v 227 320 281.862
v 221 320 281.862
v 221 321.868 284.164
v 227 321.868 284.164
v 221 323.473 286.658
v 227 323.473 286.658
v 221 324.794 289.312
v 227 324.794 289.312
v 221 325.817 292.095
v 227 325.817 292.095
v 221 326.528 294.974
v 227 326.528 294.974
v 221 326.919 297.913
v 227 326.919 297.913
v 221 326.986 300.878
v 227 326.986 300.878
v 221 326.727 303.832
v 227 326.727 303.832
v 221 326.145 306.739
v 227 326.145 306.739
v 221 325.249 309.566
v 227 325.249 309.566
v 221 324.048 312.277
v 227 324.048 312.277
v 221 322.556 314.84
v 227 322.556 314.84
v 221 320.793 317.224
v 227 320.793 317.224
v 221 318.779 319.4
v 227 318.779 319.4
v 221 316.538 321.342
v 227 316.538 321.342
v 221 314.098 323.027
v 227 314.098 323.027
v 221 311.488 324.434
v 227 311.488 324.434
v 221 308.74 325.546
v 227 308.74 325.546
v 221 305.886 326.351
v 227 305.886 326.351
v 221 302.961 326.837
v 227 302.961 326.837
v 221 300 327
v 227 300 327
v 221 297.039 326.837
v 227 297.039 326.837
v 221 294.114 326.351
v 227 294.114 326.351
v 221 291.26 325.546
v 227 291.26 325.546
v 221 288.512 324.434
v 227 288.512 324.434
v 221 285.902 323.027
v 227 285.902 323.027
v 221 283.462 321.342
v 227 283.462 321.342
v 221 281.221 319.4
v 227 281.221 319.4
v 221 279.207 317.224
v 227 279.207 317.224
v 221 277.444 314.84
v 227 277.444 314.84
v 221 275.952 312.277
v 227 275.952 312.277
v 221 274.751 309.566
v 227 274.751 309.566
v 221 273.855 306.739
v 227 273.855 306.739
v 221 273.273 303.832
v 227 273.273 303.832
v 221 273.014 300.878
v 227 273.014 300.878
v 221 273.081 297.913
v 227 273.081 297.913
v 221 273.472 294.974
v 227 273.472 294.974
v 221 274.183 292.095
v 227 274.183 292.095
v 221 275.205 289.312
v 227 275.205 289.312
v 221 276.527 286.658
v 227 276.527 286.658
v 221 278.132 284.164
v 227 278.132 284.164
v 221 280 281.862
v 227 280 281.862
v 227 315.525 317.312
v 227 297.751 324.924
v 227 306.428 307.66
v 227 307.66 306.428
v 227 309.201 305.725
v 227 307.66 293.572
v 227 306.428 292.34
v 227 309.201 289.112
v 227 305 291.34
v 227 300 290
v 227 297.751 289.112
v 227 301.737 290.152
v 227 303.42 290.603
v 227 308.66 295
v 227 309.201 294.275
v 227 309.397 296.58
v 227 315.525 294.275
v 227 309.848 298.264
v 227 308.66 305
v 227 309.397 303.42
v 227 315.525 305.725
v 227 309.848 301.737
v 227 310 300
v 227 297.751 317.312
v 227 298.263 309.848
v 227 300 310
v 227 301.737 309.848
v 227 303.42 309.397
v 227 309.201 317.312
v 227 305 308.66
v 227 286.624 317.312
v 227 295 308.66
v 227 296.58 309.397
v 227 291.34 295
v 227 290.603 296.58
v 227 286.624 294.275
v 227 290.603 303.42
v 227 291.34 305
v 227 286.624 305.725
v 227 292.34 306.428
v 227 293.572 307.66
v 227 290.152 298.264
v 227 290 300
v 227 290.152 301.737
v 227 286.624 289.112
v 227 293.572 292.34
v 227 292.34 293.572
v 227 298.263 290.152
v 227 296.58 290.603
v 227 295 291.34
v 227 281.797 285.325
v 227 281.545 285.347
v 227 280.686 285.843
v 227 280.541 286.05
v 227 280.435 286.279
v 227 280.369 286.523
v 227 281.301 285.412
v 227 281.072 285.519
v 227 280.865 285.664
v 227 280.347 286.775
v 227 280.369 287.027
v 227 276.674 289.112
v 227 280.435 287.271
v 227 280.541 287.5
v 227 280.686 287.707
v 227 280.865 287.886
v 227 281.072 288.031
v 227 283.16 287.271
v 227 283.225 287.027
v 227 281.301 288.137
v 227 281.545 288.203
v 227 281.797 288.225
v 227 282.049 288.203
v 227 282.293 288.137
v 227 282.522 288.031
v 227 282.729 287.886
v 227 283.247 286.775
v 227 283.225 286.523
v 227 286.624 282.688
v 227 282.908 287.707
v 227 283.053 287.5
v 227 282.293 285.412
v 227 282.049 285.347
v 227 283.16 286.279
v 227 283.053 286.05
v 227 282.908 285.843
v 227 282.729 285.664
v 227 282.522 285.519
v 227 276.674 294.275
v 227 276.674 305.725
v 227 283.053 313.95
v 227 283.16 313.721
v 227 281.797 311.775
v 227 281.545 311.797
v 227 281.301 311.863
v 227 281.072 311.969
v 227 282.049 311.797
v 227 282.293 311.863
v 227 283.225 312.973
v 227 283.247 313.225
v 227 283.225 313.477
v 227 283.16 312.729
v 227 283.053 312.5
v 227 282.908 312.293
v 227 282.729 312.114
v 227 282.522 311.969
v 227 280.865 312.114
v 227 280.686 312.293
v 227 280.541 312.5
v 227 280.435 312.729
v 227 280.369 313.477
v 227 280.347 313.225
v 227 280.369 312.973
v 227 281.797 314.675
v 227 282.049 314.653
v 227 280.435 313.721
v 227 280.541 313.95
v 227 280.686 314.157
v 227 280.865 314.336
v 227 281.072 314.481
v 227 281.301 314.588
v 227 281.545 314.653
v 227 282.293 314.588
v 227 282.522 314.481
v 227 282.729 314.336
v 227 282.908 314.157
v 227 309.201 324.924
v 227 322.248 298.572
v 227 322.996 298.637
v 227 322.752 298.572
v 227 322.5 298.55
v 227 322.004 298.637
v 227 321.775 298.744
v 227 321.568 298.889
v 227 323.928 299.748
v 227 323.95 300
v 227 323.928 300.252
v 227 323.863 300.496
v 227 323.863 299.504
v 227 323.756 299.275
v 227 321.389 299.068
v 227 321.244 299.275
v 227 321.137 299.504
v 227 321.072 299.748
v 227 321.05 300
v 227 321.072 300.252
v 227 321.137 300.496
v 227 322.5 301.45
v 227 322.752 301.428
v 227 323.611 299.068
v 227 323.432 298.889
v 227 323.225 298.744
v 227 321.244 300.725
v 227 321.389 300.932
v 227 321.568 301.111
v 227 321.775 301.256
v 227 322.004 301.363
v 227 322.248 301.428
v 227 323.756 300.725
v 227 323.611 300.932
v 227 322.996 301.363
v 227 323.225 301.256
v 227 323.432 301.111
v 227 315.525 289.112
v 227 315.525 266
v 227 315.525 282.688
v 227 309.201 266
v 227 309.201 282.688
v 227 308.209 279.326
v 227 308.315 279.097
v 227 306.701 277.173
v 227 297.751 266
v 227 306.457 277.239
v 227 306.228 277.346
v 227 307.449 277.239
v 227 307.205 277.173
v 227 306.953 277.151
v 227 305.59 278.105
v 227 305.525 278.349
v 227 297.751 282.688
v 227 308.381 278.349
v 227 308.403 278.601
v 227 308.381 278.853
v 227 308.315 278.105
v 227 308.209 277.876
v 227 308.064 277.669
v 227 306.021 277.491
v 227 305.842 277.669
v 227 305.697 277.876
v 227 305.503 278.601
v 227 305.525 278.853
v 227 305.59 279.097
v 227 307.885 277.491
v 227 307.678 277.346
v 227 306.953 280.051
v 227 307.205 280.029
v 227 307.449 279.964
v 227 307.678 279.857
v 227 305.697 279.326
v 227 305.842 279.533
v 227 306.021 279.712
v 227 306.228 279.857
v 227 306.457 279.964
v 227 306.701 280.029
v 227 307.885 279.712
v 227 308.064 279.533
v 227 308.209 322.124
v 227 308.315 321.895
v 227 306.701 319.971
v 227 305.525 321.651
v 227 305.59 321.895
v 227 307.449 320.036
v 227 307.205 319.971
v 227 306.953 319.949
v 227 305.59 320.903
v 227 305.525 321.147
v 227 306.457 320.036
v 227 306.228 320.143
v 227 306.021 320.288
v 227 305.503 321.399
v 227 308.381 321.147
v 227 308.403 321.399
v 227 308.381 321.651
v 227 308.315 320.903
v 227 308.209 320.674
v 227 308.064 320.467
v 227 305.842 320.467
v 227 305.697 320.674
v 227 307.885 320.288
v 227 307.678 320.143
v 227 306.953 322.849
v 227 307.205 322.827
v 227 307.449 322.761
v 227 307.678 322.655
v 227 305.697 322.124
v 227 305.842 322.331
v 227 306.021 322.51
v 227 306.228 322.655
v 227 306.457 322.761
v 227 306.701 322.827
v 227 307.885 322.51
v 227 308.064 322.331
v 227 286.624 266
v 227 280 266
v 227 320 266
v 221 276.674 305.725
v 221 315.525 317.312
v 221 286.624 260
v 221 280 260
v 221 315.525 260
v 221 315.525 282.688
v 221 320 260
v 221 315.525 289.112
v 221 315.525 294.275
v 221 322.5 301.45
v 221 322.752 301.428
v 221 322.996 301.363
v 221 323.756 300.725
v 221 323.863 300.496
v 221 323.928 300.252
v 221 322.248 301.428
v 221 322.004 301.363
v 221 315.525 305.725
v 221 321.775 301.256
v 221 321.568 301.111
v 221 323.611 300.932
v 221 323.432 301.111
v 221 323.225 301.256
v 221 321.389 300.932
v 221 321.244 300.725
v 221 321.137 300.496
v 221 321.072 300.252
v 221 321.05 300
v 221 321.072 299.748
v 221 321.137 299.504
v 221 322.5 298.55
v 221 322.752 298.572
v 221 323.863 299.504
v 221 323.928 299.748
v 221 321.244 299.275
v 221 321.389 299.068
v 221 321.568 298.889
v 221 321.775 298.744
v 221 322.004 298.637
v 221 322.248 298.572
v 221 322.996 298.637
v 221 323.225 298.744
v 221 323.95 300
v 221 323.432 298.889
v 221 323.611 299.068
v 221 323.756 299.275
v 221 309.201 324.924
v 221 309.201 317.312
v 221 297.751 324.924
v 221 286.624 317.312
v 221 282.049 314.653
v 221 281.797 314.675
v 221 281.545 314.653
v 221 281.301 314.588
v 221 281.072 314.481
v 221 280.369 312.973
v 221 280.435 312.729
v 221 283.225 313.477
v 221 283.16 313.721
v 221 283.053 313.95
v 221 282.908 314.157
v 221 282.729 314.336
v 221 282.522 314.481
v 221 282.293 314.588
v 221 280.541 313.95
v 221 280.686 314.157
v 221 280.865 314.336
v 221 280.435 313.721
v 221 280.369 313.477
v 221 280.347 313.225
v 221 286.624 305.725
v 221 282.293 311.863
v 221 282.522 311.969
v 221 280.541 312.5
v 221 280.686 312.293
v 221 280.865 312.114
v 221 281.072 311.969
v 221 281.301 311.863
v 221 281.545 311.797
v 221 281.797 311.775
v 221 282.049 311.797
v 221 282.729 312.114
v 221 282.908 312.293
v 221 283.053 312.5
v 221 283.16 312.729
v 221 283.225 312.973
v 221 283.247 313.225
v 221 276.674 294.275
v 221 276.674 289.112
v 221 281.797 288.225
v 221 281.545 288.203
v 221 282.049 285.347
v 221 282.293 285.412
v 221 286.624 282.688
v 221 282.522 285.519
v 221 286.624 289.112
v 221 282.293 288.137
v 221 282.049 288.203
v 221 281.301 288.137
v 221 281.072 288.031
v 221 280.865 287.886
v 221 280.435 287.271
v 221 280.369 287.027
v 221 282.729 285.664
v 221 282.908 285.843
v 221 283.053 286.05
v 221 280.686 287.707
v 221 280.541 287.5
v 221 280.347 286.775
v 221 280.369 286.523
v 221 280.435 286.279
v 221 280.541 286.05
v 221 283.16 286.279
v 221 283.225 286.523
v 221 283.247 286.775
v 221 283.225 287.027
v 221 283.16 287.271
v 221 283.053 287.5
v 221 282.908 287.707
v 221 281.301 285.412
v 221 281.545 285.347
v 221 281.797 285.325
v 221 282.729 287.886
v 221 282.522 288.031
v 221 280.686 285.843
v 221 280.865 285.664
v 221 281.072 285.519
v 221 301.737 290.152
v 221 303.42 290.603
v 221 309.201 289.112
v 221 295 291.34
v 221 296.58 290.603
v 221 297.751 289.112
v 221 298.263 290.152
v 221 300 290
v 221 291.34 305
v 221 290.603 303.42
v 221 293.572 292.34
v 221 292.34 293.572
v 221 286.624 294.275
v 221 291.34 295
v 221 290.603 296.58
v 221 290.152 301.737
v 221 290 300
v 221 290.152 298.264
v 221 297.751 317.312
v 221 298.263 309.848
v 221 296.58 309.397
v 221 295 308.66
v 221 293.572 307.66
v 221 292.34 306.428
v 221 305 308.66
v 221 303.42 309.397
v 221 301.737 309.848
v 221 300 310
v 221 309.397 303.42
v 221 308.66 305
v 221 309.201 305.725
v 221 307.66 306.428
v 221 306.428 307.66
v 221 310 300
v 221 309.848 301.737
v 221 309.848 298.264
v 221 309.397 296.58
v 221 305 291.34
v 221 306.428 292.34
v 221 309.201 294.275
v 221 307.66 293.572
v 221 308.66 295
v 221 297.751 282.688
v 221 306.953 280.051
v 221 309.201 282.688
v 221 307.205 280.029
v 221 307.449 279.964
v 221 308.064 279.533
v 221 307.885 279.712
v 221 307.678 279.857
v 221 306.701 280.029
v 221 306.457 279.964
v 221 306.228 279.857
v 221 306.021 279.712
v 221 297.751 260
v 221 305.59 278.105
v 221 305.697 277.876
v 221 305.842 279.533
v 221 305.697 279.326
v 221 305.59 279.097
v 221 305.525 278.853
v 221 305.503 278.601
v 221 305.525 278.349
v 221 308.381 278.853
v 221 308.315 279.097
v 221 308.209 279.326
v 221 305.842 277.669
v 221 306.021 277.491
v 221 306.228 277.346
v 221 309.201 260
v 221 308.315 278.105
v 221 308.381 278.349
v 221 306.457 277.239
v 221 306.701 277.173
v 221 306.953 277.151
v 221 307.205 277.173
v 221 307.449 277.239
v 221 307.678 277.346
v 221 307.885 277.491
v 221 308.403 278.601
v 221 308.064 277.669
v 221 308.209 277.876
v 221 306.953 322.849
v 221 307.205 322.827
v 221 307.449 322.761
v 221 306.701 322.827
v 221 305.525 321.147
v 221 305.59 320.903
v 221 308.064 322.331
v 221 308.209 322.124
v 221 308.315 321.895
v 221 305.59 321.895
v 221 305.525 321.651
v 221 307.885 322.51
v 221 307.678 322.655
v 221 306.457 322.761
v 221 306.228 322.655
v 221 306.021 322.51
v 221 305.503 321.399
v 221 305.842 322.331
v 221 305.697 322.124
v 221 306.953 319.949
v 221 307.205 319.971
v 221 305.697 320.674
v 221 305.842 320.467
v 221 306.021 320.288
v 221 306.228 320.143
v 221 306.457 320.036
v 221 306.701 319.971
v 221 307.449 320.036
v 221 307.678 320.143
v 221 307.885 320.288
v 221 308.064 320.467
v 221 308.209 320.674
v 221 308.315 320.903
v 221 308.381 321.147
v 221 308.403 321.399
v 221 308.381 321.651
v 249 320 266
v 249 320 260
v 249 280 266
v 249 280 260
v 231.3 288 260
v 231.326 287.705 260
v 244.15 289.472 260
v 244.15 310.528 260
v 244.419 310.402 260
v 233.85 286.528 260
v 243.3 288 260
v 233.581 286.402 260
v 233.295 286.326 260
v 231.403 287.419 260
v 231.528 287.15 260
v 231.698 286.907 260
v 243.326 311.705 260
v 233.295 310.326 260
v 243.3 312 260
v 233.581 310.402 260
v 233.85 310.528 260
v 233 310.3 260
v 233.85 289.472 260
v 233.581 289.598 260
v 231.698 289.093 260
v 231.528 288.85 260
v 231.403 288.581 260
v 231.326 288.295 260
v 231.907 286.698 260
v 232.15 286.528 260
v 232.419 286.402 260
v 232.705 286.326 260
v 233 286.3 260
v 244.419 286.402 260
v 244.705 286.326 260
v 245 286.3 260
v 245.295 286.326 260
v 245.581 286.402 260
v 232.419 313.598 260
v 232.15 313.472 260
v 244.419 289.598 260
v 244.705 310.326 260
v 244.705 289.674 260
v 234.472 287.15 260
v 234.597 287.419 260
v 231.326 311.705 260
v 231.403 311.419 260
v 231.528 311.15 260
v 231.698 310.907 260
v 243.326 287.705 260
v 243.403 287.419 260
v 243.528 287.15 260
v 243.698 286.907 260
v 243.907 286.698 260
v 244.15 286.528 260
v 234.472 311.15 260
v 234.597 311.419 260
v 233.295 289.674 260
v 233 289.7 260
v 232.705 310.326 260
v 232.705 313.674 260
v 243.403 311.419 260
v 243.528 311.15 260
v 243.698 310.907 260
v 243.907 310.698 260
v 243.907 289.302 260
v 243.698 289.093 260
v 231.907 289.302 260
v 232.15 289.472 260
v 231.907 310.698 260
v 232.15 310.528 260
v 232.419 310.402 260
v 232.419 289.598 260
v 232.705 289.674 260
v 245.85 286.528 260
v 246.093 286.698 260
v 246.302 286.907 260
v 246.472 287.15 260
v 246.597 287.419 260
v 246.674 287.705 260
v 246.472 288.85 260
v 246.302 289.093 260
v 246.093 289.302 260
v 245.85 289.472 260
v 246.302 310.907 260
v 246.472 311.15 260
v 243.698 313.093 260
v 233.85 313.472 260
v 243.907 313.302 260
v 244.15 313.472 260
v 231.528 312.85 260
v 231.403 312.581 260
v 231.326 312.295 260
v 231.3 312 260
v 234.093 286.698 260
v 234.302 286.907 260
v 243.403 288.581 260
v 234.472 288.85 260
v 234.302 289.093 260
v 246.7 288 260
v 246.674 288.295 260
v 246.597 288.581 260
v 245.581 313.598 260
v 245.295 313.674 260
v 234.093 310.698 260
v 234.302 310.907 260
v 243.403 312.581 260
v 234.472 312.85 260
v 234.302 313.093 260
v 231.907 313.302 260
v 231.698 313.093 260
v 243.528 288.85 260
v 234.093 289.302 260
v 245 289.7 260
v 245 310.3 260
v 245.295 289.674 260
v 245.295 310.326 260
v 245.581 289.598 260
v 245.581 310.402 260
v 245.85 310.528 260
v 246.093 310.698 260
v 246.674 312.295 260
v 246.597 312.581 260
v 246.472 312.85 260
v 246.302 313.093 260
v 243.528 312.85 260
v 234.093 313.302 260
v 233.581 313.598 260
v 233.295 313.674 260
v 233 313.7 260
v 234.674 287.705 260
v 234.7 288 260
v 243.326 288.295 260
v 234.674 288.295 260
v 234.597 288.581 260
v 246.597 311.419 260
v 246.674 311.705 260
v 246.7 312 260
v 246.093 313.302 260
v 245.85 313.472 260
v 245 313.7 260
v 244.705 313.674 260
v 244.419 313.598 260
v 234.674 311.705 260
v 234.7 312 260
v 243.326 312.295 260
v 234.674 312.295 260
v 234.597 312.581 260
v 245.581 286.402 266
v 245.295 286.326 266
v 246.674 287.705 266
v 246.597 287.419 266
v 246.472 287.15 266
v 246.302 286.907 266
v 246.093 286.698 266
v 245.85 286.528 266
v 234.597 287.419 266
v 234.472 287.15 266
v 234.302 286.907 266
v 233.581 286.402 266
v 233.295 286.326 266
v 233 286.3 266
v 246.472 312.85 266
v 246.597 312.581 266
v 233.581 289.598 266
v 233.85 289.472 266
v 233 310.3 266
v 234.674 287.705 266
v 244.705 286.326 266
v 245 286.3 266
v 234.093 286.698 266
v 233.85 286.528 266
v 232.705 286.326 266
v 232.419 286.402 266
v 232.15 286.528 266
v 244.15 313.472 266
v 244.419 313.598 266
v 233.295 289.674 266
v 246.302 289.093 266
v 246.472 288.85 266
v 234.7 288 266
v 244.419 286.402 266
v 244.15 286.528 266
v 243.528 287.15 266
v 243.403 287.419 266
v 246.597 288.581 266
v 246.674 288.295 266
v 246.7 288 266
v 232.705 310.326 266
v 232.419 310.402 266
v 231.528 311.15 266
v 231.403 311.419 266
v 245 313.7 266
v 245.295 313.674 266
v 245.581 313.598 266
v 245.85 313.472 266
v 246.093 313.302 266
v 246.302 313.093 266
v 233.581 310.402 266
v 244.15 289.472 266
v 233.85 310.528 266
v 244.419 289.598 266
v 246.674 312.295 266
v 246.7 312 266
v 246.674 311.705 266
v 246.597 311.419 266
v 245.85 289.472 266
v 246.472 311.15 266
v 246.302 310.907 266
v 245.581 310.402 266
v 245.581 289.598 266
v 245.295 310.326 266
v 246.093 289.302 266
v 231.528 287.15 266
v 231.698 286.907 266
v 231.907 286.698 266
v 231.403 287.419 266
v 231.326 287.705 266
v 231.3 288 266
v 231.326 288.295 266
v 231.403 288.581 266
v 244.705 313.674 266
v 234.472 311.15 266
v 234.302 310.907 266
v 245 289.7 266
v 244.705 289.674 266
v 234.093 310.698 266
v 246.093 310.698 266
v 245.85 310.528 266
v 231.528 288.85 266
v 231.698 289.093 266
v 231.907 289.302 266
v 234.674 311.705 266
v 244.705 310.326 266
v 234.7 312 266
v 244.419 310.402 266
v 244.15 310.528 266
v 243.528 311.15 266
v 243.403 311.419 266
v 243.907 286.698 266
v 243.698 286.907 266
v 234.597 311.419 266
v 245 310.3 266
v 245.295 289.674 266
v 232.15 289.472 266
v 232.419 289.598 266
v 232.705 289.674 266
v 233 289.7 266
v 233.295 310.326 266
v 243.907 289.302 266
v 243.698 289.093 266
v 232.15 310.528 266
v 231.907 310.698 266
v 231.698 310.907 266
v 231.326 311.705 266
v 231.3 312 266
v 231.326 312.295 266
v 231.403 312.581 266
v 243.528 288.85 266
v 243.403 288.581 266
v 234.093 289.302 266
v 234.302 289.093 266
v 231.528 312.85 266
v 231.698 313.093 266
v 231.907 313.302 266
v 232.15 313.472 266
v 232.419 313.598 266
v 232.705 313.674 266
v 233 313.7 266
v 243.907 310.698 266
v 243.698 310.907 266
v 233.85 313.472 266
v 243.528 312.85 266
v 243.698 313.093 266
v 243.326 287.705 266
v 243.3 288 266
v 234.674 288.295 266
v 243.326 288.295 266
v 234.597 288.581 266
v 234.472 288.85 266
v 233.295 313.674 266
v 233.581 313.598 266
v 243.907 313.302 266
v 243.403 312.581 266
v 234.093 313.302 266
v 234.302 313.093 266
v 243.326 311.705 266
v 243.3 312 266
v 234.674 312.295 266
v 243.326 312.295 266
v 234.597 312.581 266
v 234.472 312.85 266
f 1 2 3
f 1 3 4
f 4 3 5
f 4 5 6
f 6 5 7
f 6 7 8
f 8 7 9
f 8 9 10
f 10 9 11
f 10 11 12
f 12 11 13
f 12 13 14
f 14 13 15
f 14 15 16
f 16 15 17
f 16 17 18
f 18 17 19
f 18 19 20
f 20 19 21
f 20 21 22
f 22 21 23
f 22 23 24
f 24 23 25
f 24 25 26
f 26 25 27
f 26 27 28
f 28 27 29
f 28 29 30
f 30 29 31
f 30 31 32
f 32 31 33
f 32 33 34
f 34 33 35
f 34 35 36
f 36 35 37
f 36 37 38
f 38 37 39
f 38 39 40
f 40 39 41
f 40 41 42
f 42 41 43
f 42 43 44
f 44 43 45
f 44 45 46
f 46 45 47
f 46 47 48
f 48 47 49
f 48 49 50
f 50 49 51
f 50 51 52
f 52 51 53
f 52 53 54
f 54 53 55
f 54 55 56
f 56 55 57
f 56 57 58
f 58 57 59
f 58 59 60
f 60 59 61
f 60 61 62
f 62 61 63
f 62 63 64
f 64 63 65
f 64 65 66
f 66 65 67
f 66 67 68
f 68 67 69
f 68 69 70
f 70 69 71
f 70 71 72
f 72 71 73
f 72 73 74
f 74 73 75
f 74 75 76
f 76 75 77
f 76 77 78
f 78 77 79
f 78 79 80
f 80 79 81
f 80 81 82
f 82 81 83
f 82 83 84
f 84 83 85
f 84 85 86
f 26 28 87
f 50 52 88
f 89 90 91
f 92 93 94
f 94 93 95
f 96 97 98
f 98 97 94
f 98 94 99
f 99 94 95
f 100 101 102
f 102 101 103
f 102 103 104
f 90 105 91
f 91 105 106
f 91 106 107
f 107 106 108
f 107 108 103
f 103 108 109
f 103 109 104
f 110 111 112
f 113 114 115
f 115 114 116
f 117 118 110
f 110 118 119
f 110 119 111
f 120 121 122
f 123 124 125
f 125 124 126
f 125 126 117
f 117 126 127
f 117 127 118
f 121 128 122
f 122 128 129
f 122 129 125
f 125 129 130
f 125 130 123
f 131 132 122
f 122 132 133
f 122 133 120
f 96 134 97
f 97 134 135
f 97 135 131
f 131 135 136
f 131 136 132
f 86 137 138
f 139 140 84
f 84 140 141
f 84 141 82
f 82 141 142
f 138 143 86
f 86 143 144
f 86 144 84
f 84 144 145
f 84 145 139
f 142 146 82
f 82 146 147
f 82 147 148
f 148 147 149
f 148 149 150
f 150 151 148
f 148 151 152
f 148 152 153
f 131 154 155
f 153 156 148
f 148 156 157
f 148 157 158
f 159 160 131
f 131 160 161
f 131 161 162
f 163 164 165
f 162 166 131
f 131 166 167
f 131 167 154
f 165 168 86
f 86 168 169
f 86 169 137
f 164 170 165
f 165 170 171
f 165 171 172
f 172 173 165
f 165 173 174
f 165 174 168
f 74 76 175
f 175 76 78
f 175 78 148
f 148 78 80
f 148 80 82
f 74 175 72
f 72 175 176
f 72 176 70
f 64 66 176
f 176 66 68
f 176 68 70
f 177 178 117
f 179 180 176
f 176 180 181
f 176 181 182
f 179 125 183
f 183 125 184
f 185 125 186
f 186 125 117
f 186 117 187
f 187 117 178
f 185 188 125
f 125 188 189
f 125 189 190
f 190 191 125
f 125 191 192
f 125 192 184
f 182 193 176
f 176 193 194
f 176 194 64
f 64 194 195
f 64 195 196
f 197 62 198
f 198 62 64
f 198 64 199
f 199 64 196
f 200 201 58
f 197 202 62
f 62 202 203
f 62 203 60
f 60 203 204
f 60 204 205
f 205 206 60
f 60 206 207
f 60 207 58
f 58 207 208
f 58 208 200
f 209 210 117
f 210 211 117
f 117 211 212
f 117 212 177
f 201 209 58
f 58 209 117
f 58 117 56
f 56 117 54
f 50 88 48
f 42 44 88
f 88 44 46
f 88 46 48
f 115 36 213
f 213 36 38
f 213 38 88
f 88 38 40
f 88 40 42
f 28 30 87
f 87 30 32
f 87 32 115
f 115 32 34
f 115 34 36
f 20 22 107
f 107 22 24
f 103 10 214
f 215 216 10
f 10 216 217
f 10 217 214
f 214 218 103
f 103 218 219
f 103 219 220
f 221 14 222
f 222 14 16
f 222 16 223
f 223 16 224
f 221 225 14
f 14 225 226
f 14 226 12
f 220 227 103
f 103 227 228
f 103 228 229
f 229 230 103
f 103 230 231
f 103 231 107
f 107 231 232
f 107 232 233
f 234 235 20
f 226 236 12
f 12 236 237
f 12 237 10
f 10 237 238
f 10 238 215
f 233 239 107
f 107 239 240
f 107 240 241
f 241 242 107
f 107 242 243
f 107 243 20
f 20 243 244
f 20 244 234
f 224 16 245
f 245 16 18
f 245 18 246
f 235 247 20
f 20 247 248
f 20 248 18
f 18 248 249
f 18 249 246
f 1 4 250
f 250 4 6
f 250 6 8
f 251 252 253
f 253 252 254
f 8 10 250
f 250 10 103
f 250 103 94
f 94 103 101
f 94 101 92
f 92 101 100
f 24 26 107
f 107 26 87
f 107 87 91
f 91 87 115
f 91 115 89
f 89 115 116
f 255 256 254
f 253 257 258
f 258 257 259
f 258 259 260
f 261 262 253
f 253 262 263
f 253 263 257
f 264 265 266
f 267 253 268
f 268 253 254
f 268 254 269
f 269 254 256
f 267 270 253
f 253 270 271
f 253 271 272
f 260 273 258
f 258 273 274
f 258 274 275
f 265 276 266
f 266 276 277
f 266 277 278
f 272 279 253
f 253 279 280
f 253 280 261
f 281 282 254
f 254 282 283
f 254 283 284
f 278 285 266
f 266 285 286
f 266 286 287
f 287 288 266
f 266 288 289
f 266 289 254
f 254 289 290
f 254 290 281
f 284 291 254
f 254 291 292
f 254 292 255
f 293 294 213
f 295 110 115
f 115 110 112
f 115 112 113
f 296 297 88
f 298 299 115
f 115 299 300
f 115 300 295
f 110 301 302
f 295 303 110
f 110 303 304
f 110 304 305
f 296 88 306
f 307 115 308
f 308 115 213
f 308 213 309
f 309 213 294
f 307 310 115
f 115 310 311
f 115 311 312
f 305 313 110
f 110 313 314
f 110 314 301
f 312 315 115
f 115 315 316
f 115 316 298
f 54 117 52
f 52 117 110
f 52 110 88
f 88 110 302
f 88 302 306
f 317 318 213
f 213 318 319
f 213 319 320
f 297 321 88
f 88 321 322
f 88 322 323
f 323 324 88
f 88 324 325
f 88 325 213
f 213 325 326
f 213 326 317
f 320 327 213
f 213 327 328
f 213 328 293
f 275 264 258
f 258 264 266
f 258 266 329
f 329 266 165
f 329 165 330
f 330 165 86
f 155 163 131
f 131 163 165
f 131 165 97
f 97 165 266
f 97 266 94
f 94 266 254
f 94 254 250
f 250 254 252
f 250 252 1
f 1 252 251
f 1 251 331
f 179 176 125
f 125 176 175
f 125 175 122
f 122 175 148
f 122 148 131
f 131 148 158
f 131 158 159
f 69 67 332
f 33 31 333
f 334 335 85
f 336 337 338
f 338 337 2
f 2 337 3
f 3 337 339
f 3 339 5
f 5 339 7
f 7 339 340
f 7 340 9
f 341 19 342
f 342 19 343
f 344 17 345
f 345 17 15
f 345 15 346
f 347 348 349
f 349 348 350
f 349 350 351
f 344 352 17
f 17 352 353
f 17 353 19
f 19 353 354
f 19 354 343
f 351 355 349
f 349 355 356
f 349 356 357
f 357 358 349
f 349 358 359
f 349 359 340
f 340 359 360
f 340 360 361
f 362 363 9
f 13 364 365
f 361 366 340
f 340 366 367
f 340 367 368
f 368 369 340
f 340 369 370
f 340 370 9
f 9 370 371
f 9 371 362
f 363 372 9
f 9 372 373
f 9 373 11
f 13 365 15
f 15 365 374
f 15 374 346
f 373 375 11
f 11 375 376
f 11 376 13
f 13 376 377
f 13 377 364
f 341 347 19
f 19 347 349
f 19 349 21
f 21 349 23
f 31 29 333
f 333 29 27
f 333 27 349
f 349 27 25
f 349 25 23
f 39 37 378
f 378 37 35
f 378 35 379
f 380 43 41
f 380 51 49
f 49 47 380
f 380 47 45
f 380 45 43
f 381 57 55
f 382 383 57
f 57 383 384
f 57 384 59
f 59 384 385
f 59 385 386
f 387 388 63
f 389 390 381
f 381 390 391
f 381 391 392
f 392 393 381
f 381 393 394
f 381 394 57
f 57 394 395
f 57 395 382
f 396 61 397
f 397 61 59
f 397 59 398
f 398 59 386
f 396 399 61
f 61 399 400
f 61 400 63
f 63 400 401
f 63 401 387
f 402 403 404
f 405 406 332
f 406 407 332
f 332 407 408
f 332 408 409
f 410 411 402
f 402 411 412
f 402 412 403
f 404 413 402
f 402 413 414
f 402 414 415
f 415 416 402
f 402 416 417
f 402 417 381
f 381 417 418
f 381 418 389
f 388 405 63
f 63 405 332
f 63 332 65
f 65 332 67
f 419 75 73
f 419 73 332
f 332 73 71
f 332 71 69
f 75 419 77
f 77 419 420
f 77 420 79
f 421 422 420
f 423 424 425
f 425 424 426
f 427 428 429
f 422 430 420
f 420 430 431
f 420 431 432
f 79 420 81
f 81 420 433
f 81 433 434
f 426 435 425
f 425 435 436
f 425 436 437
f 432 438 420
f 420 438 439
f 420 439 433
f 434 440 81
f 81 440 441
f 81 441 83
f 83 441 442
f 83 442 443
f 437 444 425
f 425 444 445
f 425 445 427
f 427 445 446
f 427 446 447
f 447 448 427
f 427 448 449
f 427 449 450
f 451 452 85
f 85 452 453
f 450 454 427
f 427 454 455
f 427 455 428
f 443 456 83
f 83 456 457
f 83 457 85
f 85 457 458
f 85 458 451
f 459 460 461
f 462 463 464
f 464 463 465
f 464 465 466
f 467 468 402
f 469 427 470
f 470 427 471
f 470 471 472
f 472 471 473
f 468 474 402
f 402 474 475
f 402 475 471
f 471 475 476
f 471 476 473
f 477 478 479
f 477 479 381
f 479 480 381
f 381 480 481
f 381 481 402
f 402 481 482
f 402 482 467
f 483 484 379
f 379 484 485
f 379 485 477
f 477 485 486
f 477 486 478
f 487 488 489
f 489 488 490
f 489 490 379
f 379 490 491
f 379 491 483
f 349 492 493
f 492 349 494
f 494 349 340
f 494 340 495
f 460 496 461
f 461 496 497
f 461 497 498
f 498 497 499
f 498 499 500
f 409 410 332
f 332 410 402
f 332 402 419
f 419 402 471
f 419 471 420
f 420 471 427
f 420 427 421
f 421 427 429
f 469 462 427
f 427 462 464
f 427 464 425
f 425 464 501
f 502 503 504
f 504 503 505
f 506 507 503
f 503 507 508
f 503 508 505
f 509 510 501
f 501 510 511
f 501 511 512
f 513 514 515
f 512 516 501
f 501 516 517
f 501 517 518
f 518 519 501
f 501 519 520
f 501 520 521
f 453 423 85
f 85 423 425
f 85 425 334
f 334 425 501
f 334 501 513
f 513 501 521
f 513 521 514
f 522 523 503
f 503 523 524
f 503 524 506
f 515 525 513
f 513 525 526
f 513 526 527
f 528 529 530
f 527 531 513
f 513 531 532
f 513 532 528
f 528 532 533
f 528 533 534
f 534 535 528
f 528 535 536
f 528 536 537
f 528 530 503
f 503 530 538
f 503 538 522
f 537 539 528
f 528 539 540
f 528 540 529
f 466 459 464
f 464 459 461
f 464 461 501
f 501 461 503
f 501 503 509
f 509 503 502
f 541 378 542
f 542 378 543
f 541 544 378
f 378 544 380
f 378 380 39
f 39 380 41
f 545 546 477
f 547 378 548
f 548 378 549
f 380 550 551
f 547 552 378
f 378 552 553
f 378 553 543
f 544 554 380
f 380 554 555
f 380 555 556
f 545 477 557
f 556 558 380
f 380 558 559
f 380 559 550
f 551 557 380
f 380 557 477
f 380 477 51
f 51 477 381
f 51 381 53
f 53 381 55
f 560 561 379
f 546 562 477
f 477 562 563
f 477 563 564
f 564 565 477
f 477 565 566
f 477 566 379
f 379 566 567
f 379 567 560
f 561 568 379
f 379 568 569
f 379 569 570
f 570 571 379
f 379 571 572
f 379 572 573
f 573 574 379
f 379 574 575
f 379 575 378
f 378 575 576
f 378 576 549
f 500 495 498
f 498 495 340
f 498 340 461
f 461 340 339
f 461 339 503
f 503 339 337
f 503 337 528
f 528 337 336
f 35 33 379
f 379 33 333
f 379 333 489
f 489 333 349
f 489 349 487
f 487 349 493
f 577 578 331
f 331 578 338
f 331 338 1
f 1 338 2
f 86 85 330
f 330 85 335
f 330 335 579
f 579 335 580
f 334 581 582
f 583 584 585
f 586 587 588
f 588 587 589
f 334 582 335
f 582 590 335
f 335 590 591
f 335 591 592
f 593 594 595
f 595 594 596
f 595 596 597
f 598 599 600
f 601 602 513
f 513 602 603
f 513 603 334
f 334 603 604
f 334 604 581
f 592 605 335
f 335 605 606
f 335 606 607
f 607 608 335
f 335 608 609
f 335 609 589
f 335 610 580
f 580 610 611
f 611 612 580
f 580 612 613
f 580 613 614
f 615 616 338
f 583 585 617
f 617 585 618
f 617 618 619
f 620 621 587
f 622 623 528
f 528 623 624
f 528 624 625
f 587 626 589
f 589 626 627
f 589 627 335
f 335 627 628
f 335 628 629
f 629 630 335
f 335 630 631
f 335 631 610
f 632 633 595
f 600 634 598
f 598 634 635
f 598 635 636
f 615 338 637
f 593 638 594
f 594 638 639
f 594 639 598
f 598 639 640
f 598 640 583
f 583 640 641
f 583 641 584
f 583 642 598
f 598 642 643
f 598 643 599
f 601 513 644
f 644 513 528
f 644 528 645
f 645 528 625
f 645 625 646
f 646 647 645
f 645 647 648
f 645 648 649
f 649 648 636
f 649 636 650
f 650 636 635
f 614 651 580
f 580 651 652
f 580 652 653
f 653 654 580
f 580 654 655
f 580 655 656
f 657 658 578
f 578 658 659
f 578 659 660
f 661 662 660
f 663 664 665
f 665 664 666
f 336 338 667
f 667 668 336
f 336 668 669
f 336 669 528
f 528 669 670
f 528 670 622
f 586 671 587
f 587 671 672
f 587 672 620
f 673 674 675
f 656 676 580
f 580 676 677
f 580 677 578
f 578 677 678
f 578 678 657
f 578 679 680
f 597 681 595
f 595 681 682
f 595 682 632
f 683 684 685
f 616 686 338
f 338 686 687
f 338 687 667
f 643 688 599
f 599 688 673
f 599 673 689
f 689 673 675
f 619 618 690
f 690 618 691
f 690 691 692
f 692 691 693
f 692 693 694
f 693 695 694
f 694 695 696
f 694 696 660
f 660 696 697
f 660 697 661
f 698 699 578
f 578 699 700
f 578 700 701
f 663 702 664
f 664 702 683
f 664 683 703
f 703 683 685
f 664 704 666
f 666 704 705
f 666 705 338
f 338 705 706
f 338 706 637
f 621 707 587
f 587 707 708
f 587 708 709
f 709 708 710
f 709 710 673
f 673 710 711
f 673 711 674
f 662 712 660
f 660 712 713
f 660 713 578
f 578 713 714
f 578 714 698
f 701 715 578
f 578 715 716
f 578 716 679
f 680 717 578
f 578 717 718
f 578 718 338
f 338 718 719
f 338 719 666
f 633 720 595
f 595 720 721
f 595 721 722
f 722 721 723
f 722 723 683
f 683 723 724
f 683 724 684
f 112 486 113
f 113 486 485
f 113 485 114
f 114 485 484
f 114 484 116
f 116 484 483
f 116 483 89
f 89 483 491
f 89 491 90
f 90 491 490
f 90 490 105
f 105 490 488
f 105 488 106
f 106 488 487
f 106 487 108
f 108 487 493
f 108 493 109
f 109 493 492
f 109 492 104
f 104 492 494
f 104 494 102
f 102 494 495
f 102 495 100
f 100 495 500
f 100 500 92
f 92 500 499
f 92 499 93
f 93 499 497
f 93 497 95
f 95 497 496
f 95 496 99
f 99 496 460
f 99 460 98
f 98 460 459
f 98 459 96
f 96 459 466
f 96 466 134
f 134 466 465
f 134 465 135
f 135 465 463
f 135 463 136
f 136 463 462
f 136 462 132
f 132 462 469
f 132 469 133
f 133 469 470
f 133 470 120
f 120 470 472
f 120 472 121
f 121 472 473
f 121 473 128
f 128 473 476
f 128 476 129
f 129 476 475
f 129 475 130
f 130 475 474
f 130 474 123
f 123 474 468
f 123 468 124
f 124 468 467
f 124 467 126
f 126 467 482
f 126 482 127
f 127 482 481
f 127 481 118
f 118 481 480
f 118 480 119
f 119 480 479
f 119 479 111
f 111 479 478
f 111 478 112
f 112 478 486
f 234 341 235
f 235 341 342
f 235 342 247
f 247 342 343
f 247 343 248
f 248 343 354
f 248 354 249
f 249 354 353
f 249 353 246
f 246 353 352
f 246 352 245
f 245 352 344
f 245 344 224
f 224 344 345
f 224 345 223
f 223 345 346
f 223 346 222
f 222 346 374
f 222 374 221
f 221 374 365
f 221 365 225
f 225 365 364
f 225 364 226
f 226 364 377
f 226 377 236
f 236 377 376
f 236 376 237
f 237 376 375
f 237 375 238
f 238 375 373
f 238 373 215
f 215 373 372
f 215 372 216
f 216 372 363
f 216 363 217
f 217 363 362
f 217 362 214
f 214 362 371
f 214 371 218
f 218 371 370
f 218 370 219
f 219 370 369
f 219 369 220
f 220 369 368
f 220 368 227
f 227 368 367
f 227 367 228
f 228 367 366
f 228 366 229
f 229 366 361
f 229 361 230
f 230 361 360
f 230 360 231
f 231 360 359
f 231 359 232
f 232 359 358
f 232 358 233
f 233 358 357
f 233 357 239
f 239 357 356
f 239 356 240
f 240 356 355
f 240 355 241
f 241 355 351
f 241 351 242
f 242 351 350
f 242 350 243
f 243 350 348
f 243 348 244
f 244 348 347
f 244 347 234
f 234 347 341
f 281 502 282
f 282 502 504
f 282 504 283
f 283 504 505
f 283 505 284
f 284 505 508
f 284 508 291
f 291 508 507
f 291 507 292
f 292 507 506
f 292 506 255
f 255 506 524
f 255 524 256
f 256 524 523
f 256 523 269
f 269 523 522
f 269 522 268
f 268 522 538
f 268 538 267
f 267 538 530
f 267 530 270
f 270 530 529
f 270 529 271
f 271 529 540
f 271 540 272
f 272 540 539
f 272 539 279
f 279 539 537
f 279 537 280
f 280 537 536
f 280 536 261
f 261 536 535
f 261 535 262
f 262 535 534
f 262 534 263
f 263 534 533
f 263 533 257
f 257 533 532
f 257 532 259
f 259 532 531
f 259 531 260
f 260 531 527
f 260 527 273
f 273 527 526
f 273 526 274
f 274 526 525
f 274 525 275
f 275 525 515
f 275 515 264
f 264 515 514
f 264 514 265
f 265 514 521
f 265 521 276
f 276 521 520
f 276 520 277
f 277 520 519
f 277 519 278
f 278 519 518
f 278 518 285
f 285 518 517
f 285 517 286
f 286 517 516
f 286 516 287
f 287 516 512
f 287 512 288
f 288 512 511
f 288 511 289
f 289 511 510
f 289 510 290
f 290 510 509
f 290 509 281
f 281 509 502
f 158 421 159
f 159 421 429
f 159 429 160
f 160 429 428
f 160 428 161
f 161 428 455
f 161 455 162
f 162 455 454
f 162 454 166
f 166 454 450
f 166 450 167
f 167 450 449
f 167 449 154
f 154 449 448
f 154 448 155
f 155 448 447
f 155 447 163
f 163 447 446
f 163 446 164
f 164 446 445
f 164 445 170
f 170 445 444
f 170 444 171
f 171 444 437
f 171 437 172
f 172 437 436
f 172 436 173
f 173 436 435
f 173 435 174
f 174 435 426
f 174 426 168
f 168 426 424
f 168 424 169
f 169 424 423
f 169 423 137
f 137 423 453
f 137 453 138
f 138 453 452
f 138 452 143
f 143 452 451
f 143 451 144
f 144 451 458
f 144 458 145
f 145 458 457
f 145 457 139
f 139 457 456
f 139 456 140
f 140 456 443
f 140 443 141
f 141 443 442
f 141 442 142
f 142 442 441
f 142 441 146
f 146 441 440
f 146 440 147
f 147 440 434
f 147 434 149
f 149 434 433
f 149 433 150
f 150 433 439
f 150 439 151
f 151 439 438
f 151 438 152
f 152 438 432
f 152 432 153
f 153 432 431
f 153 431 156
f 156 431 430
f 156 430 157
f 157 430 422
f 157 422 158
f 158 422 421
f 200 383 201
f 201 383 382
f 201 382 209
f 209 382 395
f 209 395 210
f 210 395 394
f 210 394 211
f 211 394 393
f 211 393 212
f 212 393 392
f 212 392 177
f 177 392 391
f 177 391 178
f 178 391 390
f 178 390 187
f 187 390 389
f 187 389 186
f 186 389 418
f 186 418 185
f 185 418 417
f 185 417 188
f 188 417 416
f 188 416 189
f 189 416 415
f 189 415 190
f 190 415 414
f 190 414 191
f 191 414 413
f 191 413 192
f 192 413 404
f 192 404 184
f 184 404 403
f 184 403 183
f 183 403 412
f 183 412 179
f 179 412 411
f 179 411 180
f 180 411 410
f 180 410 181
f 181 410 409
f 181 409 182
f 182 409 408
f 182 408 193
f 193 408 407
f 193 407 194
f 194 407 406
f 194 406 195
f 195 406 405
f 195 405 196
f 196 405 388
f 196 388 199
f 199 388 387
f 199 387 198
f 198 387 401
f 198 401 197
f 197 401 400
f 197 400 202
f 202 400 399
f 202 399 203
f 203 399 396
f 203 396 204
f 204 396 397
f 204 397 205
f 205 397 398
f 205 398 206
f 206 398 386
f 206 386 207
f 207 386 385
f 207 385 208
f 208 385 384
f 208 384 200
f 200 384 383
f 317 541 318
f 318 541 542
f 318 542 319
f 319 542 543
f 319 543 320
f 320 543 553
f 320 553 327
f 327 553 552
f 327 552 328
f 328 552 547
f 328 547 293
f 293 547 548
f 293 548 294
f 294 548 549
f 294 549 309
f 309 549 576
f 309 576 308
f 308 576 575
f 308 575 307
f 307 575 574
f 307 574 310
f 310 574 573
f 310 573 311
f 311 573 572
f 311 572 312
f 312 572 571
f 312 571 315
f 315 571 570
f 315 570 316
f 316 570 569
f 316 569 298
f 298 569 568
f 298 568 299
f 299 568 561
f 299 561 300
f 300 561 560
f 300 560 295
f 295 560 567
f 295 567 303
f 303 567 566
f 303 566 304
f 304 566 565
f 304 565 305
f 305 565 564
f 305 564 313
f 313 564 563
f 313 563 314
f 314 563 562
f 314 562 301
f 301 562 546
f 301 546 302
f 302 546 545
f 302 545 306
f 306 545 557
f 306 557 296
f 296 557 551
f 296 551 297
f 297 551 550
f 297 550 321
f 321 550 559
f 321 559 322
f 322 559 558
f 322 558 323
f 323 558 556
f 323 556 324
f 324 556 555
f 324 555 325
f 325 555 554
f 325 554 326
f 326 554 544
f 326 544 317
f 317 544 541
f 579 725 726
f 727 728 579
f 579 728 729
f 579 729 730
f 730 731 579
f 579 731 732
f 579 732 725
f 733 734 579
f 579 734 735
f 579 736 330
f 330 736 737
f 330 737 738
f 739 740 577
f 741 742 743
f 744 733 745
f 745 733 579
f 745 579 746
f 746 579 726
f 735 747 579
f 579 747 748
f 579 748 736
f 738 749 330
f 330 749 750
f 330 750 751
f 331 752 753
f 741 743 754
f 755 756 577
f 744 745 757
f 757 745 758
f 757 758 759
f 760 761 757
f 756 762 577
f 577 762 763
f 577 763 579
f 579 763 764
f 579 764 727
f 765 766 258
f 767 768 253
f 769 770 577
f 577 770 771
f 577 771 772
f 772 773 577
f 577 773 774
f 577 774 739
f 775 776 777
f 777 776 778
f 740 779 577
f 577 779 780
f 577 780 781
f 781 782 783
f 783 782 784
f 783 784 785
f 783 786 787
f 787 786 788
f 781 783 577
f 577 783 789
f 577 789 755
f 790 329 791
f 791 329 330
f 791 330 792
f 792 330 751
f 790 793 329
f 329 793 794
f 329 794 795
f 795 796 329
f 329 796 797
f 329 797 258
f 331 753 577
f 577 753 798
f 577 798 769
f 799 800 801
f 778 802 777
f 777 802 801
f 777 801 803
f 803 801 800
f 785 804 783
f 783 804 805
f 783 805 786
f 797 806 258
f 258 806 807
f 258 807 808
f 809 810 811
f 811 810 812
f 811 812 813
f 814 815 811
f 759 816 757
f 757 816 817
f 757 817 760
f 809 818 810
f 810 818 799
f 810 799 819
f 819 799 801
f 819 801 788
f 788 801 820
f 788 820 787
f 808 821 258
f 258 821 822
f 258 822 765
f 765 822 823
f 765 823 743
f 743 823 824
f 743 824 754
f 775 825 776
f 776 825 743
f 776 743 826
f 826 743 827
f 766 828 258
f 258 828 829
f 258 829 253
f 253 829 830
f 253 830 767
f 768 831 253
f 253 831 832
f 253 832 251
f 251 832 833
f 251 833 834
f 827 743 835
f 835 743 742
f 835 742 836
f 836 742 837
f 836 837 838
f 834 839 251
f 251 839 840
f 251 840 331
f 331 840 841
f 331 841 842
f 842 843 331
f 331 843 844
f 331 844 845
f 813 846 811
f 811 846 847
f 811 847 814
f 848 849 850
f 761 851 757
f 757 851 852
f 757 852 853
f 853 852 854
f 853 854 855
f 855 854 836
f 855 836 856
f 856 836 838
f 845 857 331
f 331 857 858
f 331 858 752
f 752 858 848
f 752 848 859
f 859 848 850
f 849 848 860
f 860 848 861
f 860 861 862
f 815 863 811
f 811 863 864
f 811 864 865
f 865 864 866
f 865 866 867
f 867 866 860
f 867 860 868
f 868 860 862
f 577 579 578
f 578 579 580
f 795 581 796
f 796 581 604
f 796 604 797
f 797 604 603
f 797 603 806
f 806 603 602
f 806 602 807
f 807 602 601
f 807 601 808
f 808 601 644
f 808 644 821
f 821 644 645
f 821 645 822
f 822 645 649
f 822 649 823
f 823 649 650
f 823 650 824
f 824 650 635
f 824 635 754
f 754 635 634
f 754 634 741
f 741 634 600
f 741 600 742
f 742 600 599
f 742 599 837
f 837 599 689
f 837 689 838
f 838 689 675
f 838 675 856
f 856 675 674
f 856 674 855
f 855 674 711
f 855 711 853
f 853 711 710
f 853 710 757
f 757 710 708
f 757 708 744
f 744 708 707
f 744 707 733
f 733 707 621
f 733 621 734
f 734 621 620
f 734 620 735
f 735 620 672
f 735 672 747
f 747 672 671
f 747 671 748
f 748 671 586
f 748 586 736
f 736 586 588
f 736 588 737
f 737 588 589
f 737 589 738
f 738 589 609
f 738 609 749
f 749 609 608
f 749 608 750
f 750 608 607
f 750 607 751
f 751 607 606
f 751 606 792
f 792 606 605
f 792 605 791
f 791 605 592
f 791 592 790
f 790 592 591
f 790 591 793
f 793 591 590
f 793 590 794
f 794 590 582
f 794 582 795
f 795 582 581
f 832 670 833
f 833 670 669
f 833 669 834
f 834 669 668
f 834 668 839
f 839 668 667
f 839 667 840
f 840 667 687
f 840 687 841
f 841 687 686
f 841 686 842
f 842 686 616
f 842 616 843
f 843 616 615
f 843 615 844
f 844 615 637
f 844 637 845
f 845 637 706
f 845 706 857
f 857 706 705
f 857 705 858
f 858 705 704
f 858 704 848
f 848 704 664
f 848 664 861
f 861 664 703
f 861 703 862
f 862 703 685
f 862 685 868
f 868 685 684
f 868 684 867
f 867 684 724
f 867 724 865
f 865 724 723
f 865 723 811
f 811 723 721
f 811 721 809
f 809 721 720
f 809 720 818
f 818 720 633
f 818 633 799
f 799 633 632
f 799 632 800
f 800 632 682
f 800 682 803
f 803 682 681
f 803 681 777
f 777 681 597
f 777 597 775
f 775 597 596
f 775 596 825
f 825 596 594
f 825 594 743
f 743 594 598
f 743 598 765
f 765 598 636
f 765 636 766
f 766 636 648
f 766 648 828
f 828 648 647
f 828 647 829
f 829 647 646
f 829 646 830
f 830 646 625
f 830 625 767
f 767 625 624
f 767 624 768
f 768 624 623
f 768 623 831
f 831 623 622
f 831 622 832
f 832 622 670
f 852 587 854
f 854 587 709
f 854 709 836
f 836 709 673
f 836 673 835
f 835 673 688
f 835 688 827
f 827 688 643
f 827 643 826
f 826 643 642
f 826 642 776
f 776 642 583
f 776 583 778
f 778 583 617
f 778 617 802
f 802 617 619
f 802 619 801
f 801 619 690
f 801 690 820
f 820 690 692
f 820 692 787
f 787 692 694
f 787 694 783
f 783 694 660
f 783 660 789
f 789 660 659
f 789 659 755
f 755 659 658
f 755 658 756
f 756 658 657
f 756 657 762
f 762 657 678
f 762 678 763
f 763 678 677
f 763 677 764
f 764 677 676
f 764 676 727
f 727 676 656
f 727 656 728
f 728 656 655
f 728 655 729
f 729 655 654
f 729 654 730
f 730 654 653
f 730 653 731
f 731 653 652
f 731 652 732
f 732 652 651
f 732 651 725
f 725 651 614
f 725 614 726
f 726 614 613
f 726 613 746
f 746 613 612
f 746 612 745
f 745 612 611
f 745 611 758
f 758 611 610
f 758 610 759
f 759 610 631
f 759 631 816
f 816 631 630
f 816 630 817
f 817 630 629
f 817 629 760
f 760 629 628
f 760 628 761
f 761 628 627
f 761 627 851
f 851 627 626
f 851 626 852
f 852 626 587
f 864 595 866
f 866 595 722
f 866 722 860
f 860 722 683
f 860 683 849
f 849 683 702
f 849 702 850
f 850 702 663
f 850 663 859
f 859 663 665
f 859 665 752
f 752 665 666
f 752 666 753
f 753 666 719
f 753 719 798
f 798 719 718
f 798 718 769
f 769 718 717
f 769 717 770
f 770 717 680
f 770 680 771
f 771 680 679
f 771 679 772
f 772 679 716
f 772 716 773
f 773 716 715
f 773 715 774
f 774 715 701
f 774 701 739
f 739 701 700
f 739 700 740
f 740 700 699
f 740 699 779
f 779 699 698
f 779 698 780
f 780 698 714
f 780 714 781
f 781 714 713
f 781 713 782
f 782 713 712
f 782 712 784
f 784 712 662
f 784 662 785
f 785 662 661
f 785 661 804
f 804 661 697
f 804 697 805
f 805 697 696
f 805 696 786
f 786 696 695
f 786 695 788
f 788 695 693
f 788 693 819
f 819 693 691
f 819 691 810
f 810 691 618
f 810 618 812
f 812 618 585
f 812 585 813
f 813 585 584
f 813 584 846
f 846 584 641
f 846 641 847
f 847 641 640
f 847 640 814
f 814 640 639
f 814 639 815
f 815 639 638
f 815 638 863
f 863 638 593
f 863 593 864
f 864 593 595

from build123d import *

# Parameters (mm, degrees)
SKETCH1_R           = 27
BOSS_EXTRUDE1_DEPTH = 6
SKETCH2_W           = 25
SKETCH2_H           = 40
BOSS_EXTRUDE2_DEPTH = 6
SKETCH3_R           = 10
SKETCH3_R_2         = 1.45
CUT_EXTRUDE1_DEPTH  = 6.01
SKETCH4_W           = 22.01
SKETCH4_H           = 40
SKETCH4_R           = 1.7
BOSS_EXTRUDE3_DEPTH = 6


with BuildPart() as part:
    # Sketch1 → Boss-Extrude1 (new body)
    with BuildSketch(Plane(origin=(221, 0, 0), x_dir=(0, 0, -1), z_dir=(1, 0, 0))):
        with Locations((-300, 300)):
            Circle(SKETCH1_R)
    extrude(amount=BOSS_EXTRUDE1_DEPTH)

    # Sketch2 → Boss-Extrude2 (add)
    with BuildSketch(Plane(origin=(221, 0, 0), x_dir=(0, 0, -1), z_dir=(1, 0, 0))):
        with Locations((-272.5, 300)):
            Rectangle(SKETCH2_W, SKETCH2_H)
    extrude(amount=BOSS_EXTRUDE2_DEPTH)

    # Sketch3 → Cut-Extrude1 (cut)
    with BuildSketch(Plane(origin=(221, 0, 0), x_dir=(0, 0, -1), z_dir=(1, 0, 0))):
        with Locations((-300, 300)):
            Circle(SKETCH3_R)
        with Locations((-300, 322.5)):
            Circle(SKETCH3_R_2)
        with Locations((-278.601228383, 306.952882373)):
            Circle(SKETCH3_R_2)
        with Locations((-286.774831823, 281.797117627)):
            Circle(SKETCH3_R_2)
        with Locations((-313.225168177, 281.797117627)):
            Circle(SKETCH3_R_2)
        with Locations((-321.398771617, 306.952882373)):
            Circle(SKETCH3_R_2)
    extrude(amount=CUT_EXTRUDE1_DEPTH, mode=Mode.SUBTRACT)

    # Sketch4 → Boss-Extrude3 (add)
    with BuildSketch(Plane.XY.offset(260)):
        with Locations((237.995, 300)):
            Rectangle(SKETCH4_W, SKETCH4_H)
        with Locations((233, 288)):
            Circle(SKETCH4_R, mode=Mode.SUBTRACT)
        with Locations((233, 312)):
            Circle(SKETCH4_R, mode=Mode.SUBTRACT)
        with Locations((245, 288)):
            Circle(SKETCH4_R, mode=Mode.SUBTRACT)
        with Locations((245, 312)):
            Circle(SKETCH4_R, mode=Mode.SUBTRACT)
    extrude(amount=BOSS_EXTRUDE3_DEPTH)


solid = part.part
